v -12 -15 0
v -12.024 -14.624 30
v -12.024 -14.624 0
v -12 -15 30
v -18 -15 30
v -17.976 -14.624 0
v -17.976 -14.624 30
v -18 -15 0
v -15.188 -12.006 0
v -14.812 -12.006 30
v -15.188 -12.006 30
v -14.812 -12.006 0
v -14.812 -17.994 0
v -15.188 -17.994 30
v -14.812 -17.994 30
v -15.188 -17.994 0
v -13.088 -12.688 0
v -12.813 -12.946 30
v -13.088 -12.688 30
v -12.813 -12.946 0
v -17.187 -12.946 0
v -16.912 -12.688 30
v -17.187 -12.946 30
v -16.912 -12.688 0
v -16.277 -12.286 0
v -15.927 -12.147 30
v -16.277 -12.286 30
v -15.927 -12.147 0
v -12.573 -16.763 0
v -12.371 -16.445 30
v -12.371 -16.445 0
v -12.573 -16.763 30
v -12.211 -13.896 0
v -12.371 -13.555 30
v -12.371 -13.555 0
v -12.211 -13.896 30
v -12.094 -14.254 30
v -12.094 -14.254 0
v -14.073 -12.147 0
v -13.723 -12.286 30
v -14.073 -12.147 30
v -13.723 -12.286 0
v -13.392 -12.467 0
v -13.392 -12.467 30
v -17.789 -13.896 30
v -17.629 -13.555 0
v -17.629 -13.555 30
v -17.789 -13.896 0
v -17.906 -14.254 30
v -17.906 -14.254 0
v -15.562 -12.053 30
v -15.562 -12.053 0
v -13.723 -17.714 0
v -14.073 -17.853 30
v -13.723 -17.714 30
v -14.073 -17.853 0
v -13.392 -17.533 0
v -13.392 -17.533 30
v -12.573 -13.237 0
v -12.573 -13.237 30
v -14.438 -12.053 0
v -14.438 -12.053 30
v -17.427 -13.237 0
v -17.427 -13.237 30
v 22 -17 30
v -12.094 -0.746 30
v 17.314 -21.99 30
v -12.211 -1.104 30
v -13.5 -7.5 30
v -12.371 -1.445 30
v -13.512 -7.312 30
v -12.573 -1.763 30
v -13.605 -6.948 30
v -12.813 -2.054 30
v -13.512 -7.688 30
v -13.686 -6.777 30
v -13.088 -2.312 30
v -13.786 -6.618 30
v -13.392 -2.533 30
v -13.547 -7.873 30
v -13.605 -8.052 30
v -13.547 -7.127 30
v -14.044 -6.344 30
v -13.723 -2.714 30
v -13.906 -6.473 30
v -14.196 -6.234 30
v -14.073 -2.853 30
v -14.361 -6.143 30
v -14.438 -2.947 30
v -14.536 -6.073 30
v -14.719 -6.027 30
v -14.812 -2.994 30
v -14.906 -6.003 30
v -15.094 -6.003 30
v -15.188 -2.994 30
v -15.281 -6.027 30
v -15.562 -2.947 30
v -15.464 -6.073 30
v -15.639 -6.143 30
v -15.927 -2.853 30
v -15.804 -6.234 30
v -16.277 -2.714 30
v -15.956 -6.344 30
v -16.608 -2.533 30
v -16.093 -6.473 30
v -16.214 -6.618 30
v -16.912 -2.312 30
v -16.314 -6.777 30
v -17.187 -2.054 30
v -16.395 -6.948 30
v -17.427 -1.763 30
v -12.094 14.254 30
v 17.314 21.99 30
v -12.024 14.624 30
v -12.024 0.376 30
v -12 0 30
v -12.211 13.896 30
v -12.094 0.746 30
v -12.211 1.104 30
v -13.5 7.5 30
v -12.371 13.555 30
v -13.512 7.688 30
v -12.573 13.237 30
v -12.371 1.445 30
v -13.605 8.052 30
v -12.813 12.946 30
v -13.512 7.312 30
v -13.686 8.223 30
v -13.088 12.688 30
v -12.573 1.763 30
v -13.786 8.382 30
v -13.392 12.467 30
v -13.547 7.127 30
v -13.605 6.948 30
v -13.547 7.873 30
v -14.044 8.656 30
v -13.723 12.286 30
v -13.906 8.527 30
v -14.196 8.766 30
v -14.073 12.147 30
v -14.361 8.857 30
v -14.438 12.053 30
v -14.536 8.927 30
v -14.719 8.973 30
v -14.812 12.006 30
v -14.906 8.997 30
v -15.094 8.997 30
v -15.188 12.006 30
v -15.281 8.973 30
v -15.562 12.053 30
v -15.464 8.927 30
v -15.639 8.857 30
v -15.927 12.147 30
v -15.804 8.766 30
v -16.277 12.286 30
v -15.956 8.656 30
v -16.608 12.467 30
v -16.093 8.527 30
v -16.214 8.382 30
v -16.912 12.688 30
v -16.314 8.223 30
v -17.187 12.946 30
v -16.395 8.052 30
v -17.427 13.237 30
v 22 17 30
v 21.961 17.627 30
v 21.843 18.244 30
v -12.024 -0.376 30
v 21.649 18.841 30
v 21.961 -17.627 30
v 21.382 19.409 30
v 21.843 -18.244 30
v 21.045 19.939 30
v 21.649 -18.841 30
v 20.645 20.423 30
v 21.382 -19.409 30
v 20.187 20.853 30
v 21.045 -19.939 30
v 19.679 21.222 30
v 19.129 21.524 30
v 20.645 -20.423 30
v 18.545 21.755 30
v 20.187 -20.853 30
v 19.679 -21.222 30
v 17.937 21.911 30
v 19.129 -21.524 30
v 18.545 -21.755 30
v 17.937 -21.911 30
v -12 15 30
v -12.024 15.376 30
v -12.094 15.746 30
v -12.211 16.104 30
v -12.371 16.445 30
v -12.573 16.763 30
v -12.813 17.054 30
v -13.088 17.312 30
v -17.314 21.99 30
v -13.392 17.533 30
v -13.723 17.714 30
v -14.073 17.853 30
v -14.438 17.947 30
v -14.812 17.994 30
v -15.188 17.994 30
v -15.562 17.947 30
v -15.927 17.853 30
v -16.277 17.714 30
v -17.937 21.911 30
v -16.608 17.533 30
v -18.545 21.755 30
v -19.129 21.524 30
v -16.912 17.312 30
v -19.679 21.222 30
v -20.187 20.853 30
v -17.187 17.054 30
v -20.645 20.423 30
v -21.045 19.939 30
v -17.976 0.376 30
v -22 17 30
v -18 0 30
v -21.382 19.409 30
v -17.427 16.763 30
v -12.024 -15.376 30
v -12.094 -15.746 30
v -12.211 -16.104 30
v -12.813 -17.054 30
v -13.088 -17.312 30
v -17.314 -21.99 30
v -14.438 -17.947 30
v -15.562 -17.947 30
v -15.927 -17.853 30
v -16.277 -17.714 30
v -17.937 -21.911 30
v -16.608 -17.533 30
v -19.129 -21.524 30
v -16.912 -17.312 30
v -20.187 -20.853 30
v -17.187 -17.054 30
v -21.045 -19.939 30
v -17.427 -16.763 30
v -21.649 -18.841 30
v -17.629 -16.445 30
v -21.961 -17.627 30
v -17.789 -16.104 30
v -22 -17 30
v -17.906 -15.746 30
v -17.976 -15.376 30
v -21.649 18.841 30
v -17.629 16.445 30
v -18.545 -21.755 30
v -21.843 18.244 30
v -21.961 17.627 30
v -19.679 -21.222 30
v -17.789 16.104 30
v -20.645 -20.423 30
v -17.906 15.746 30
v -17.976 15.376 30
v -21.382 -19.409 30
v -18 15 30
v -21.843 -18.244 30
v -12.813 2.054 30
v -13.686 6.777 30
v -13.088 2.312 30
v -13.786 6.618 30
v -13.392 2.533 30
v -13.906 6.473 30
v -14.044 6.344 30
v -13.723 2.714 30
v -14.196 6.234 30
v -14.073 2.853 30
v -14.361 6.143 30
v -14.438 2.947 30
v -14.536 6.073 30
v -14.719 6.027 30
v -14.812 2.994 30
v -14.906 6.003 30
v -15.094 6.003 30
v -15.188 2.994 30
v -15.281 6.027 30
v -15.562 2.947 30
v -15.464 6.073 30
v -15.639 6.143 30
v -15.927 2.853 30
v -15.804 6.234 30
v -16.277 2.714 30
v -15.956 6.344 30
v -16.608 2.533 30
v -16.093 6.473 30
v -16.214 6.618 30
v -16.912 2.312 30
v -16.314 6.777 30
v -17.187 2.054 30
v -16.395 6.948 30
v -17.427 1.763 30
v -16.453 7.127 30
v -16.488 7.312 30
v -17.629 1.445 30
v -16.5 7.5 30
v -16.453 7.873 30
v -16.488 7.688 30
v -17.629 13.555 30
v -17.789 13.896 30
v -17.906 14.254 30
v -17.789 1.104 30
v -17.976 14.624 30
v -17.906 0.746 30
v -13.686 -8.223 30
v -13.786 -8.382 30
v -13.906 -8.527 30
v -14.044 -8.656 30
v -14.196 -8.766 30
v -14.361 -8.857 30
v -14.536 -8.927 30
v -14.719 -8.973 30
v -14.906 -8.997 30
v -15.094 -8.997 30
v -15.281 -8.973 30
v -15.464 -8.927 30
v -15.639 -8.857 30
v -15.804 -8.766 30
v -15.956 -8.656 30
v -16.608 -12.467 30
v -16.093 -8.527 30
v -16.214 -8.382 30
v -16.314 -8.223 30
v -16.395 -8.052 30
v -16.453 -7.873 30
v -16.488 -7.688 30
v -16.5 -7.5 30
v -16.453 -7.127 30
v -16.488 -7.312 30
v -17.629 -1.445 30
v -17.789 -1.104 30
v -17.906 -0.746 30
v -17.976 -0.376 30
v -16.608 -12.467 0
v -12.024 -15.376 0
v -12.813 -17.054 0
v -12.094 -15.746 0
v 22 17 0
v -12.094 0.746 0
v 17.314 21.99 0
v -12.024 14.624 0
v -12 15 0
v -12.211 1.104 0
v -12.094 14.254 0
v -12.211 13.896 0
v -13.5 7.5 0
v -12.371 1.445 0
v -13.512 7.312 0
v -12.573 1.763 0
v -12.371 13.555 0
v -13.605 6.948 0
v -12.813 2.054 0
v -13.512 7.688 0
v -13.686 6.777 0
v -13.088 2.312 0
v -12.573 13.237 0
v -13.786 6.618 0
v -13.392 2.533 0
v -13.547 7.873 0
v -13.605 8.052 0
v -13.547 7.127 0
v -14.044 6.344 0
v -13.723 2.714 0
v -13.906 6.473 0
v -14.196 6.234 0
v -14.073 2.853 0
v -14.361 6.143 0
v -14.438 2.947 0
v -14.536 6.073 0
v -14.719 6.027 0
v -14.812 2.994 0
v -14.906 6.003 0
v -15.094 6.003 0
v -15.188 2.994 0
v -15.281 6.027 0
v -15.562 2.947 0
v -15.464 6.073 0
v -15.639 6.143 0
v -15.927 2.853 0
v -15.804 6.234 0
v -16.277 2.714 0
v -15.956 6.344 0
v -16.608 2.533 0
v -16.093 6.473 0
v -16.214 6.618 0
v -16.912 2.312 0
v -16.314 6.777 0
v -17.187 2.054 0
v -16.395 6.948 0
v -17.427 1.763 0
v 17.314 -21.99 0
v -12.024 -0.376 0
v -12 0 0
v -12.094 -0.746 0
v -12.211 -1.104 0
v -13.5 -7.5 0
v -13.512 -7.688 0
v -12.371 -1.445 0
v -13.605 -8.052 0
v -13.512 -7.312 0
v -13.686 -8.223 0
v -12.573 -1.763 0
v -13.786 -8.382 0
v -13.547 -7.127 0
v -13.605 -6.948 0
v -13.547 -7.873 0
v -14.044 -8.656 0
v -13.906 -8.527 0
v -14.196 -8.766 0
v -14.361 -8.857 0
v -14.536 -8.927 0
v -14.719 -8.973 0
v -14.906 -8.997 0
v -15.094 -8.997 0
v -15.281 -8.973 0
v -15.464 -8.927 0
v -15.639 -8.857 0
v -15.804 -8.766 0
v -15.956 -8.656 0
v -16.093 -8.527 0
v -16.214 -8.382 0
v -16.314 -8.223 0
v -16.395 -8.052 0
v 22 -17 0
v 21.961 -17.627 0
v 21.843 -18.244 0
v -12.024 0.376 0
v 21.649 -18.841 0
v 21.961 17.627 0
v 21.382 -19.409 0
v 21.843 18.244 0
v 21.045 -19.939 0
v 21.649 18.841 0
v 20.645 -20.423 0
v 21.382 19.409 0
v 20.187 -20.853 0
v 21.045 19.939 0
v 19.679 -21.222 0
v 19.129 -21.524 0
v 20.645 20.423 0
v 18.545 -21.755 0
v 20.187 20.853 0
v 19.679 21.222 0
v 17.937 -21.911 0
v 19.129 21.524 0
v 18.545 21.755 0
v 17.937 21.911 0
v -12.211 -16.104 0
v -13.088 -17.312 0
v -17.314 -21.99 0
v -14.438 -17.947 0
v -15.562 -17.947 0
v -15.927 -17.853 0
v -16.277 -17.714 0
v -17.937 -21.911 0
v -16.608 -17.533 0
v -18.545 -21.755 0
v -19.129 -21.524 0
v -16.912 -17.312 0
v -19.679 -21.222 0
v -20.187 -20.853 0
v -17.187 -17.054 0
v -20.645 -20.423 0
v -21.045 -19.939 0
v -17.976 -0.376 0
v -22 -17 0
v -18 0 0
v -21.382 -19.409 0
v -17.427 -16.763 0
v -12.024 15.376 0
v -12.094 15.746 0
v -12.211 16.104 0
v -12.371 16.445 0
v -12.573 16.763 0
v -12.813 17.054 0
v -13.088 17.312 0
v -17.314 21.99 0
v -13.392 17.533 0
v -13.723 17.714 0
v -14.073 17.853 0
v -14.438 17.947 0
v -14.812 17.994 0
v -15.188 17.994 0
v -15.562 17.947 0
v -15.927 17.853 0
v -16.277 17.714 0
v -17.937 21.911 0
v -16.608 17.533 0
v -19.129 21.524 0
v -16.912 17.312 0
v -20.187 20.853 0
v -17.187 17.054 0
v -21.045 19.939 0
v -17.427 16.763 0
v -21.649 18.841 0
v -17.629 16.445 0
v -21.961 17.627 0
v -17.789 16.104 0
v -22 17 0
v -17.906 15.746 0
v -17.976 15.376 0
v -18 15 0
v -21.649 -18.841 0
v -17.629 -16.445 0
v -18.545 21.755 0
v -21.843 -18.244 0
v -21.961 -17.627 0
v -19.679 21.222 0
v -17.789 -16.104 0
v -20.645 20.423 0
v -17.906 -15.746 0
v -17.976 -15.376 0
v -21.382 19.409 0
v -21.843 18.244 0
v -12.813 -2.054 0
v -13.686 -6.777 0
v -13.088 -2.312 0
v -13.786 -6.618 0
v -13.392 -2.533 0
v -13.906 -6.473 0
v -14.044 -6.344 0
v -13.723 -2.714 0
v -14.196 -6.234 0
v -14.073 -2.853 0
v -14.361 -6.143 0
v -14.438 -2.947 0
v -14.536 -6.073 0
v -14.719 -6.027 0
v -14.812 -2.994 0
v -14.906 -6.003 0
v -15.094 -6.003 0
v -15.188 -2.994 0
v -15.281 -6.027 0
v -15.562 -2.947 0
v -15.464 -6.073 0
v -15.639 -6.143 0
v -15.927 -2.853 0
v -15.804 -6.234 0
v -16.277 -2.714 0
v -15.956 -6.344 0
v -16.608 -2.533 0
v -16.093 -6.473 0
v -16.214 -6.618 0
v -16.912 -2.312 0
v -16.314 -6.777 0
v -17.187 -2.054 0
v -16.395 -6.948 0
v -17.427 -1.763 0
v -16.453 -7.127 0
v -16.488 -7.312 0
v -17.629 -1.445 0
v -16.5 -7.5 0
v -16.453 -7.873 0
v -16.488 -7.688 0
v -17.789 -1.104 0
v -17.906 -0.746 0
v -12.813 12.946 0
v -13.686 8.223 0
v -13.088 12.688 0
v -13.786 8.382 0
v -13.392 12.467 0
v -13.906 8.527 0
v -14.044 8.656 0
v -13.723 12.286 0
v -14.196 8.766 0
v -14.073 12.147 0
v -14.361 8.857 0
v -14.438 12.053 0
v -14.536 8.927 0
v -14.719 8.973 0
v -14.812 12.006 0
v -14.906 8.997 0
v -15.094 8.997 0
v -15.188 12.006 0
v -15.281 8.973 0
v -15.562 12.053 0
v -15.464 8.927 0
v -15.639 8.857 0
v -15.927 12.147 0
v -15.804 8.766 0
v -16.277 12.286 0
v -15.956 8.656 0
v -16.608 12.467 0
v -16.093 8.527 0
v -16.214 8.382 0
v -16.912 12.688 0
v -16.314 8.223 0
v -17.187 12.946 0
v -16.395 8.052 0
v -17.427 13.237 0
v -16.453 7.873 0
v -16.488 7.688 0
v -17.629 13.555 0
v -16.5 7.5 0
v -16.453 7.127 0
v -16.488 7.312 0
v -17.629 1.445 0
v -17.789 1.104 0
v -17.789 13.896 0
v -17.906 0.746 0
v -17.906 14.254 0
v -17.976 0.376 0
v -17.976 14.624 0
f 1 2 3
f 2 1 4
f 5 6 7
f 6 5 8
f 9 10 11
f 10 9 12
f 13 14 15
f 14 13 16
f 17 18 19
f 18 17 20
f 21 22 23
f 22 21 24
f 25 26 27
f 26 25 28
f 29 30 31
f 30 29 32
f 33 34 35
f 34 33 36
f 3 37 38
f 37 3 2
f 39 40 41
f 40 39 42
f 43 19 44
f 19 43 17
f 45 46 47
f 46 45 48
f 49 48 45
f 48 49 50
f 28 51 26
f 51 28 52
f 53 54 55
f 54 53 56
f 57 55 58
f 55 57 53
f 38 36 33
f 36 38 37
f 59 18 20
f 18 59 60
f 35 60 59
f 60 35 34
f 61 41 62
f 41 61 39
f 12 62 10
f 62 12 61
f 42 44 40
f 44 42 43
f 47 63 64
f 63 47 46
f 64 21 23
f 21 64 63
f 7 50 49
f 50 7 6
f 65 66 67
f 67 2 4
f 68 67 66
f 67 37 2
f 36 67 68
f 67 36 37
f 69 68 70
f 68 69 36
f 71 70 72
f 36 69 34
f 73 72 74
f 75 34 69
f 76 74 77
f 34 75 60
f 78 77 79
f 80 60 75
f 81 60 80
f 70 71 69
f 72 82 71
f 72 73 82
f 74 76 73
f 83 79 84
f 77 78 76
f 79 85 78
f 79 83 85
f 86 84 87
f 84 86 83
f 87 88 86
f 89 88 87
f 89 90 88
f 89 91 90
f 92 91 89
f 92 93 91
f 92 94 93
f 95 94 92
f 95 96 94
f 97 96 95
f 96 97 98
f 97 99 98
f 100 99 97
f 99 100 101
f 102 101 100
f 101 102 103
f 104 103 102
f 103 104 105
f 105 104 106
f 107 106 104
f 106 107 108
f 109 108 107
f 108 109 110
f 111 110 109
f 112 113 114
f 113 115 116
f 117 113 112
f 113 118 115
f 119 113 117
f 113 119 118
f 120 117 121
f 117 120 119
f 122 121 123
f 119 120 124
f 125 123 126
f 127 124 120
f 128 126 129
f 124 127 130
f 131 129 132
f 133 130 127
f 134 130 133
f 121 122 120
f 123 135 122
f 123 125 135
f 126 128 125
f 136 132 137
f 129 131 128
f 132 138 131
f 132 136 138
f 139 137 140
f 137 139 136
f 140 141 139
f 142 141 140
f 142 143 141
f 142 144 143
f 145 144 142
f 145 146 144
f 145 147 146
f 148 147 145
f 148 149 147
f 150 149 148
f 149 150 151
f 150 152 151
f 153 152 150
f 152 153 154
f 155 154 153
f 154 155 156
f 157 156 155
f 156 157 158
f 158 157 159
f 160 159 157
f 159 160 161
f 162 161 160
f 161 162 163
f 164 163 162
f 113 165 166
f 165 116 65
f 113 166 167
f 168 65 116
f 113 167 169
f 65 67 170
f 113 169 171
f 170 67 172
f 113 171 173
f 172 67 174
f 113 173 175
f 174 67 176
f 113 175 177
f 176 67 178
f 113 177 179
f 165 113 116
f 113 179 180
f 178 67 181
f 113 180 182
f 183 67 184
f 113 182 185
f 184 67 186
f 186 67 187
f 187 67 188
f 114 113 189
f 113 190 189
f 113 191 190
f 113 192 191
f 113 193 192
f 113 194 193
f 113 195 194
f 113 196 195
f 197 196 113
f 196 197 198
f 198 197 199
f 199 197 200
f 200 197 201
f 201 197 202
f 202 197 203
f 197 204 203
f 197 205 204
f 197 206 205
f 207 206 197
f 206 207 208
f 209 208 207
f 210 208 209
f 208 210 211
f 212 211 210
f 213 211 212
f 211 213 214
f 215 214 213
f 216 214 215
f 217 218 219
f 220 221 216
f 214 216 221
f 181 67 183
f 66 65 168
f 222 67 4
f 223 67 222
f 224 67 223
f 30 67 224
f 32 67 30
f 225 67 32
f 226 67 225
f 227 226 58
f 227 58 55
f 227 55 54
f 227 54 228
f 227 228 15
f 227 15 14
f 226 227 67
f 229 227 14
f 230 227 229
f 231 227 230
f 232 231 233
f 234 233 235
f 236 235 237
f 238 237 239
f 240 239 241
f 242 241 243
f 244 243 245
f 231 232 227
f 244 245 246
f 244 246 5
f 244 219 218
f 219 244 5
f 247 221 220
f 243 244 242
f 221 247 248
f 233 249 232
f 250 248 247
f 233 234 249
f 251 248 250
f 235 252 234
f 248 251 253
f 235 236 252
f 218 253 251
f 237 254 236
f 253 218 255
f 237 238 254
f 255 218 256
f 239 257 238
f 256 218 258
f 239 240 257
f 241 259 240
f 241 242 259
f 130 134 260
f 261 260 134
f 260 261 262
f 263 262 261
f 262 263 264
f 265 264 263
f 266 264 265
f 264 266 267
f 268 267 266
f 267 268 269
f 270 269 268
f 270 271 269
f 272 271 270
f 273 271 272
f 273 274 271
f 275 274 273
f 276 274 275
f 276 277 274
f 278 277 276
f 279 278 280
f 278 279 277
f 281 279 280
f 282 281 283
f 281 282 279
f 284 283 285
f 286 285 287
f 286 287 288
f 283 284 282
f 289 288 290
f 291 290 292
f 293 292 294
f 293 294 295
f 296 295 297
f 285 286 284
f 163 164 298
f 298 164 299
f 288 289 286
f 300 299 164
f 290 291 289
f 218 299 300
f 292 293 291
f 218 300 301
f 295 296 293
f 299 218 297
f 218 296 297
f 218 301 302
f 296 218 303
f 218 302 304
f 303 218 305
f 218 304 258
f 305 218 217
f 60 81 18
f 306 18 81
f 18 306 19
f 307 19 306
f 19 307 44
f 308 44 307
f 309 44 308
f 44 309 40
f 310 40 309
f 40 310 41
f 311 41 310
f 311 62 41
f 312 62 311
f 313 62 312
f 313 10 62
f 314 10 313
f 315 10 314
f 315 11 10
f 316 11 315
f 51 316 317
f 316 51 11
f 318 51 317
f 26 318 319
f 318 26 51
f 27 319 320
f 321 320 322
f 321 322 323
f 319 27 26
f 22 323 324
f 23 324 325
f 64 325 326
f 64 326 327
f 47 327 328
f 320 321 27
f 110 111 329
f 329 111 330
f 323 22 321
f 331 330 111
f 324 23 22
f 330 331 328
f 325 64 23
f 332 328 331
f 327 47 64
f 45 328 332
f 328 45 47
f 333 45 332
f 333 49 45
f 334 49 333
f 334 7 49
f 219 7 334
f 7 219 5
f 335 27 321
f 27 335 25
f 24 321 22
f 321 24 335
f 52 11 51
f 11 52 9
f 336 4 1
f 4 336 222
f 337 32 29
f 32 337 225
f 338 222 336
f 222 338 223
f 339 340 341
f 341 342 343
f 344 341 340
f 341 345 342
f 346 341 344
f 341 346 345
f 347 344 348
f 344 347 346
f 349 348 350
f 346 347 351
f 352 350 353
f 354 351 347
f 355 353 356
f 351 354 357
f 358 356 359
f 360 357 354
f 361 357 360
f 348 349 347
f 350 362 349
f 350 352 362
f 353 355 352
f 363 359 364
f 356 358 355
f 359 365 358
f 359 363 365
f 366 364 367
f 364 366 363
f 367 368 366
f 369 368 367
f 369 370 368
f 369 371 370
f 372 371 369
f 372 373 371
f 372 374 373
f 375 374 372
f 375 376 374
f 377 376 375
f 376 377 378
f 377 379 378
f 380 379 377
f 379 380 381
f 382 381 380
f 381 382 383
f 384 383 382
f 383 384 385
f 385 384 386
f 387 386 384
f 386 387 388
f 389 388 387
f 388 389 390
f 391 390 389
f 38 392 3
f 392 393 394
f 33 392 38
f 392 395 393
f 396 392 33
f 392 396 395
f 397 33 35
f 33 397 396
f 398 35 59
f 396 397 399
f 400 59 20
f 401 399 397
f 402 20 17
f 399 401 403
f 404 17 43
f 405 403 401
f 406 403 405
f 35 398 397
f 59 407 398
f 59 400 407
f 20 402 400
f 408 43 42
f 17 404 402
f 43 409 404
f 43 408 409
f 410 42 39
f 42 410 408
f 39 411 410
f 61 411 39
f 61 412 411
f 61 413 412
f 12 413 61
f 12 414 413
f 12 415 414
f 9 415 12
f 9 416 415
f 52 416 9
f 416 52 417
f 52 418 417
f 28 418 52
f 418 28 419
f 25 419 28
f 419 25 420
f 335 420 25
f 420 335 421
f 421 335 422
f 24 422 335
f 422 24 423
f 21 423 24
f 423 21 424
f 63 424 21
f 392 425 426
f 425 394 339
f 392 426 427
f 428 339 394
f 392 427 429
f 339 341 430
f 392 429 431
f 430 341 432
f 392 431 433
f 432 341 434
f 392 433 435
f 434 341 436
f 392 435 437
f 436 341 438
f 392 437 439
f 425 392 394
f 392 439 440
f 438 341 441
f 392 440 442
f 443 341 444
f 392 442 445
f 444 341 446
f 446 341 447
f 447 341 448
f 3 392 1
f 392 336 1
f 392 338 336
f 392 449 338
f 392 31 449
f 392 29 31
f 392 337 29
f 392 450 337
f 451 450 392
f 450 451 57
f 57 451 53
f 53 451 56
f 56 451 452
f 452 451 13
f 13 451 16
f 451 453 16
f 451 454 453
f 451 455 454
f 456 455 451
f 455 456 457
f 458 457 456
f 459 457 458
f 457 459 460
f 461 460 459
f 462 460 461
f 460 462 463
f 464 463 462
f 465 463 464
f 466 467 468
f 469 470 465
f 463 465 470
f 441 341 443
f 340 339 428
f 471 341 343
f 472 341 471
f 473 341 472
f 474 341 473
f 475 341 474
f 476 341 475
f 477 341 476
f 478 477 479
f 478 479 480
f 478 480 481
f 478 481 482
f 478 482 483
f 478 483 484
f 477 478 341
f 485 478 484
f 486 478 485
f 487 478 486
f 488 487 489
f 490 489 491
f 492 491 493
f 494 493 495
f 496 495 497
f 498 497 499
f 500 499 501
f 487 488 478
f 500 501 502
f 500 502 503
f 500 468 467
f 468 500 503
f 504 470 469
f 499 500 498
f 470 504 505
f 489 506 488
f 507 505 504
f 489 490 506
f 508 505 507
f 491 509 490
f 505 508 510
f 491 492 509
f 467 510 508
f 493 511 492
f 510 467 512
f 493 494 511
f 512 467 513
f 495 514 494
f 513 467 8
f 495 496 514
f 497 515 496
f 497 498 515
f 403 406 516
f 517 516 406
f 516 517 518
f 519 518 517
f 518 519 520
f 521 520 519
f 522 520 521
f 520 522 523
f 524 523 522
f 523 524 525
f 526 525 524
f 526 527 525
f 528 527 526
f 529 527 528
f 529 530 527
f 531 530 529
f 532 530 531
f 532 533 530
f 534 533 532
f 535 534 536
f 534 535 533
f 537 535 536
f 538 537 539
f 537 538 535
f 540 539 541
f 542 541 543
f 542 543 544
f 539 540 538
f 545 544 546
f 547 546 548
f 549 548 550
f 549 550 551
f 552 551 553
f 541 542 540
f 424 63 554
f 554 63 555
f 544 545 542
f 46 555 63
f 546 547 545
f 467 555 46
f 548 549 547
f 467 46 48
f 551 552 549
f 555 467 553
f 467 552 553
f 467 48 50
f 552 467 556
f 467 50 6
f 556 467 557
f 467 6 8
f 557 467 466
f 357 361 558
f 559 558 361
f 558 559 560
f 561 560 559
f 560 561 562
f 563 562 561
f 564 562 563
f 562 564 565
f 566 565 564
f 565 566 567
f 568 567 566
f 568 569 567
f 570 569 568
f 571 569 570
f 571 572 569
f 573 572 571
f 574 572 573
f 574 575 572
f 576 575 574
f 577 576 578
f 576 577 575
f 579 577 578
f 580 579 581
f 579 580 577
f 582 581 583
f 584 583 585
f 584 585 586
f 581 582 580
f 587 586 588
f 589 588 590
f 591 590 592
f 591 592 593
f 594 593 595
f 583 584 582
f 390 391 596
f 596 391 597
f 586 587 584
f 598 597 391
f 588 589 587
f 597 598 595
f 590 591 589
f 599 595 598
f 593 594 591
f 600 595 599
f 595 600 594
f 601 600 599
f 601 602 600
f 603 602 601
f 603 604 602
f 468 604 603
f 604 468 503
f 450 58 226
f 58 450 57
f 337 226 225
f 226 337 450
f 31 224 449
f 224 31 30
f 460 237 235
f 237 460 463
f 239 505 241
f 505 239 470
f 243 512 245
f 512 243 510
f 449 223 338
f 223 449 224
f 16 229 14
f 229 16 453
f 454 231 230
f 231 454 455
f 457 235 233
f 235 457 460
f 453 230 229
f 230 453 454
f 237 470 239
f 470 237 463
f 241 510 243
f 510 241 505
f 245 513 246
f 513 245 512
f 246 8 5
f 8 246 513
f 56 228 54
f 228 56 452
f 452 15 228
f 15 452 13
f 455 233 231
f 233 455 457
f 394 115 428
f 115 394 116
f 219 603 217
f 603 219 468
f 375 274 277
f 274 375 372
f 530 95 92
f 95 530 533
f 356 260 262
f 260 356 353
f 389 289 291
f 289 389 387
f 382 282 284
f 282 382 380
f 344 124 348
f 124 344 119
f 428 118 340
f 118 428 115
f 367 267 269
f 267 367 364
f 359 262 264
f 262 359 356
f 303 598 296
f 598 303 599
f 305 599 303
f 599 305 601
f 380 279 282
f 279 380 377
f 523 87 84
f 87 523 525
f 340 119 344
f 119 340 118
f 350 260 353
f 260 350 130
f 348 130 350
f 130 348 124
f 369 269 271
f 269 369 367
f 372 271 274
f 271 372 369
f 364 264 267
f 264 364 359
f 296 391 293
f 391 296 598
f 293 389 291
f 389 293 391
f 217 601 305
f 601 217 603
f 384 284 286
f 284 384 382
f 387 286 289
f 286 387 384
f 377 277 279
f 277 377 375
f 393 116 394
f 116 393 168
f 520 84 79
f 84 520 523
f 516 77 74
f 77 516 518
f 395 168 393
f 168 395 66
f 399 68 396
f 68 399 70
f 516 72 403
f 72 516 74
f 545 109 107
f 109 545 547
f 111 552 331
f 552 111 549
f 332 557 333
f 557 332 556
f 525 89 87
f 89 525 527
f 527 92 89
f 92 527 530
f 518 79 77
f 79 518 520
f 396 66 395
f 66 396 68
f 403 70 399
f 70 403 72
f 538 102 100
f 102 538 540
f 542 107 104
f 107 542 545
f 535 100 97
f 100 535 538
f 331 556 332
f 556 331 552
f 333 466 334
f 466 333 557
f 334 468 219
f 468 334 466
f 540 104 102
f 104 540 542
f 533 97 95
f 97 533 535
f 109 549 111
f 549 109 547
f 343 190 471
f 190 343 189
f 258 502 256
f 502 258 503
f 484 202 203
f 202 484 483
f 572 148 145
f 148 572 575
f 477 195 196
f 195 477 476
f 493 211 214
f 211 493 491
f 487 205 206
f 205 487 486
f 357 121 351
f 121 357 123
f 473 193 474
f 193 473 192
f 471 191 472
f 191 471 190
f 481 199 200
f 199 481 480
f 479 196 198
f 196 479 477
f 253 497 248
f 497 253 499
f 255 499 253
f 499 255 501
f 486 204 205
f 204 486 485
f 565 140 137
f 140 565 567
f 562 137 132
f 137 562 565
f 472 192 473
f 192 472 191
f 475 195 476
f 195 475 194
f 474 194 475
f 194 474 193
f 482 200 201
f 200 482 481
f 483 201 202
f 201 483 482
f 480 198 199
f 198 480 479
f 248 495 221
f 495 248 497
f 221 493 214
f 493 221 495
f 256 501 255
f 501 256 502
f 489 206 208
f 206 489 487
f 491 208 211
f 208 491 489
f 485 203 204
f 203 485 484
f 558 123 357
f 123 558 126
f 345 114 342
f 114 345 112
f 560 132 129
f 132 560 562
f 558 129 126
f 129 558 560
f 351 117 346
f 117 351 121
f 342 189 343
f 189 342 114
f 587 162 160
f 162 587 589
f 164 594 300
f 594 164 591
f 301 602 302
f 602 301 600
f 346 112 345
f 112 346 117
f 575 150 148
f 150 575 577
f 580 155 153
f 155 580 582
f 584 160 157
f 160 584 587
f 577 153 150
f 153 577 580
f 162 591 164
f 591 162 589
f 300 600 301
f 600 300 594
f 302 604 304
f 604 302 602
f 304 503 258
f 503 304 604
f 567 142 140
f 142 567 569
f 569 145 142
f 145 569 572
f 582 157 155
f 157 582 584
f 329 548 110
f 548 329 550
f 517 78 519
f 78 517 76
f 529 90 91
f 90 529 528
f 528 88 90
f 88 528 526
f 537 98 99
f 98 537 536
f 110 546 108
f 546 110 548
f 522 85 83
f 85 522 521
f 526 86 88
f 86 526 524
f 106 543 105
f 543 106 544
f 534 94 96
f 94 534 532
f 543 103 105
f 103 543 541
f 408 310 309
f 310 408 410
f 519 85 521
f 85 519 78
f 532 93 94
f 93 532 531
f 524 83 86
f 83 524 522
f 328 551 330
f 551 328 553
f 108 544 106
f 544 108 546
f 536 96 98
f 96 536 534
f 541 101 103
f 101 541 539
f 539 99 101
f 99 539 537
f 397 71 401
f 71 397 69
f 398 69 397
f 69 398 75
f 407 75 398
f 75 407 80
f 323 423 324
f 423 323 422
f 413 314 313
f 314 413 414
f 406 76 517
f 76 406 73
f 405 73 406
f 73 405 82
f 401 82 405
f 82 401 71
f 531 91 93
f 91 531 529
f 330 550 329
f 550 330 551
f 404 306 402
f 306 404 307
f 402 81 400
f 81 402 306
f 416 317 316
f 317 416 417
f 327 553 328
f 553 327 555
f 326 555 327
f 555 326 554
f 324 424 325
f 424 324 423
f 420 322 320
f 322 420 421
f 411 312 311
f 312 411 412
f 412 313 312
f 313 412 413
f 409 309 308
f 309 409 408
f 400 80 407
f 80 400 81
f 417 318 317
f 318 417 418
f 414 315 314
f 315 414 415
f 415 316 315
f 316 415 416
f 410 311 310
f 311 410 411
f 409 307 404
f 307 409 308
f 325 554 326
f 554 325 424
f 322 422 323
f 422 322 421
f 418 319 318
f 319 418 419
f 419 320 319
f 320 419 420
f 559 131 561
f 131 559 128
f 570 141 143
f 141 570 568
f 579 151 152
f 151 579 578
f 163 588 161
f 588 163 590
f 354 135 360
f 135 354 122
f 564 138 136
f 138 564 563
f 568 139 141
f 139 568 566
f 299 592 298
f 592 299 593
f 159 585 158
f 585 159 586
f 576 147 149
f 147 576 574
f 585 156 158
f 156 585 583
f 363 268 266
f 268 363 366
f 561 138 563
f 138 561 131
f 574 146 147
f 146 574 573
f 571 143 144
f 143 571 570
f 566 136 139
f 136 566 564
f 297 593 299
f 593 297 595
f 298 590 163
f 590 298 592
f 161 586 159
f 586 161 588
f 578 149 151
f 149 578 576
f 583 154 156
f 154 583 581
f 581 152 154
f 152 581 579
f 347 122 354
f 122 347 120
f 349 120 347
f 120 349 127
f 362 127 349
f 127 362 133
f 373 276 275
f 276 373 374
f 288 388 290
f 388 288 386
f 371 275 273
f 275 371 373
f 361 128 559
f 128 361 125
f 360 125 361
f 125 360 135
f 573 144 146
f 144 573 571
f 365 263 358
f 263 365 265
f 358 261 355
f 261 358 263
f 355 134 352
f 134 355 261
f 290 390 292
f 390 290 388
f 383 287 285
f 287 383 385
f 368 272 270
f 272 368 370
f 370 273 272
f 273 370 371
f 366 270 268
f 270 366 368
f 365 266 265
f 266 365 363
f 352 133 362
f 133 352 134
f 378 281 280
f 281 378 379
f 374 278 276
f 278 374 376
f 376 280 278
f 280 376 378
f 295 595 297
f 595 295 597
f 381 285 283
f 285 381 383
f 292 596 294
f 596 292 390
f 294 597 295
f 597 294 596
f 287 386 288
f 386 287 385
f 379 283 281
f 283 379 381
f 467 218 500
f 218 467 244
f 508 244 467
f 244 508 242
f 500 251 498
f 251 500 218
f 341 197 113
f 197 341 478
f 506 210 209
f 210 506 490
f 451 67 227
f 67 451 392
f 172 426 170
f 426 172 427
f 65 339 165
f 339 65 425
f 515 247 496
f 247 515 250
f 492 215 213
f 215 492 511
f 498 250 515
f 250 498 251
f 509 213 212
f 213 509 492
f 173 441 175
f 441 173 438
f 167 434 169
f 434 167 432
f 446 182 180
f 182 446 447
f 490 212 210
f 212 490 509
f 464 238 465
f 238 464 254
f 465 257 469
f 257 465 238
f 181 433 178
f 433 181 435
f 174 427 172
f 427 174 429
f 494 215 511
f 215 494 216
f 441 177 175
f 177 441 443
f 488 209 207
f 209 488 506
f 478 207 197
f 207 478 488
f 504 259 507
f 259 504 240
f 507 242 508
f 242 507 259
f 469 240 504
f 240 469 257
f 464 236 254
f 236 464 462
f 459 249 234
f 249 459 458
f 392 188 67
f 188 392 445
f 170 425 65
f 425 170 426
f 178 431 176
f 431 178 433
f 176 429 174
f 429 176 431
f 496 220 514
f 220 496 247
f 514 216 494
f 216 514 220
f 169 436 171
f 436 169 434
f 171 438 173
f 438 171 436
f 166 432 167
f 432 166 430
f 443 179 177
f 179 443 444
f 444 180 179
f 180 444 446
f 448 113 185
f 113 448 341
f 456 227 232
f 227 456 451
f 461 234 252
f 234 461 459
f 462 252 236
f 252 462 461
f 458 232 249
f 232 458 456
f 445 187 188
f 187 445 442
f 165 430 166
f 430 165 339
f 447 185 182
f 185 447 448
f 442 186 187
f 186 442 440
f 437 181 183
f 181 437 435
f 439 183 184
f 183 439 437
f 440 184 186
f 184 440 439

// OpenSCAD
$fn = 50;


difference() {
	union() {
		hull() {
			translate(v = [-17.0000000000, 17.0000000000, 0]) {
				cylinder(h = 30, r = 5);
			}
			translate(v = [17.0000000000, 17.0000000000, 0]) {
				cylinder(h = 30, r = 5);
			}
			translate(v = [-17.0000000000, -17.0000000000, 0]) {
				cylinder(h = 30, r = 5);
			}
			translate(v = [17.0000000000, -17.0000000000, 0]) {
				cylinder(h = 30, r = 5);
			}
		}
	}
	union() {
		translate(v = [-15.0000000000, -15.0000000000, 0]) {
			cylinder(h = 30, r = 3.0000000000);
		}
		translate(v = [-15.0000000000, 0.0000000000, 0]) {
			cylinder(h = 30, r = 3.0000000000);
		}
		translate(v = [-15.0000000000, 15.0000000000, 0]) {
			cylinder(h = 30, r = 3.0000000000);
		}
		translate(v = [-15.0000000000, -15.0000000000, 0]) {
			cylinder(h = 30, r = 1.5000000000);
		}
		translate(v = [-15.0000000000, -7.5000000000, 0]) {
			cylinder(h = 30, r = 1.5000000000);
		}
		translate(v = [-15.0000000000, 0.0000000000, 0]) {
			cylinder(h = 30, r = 1.5000000000);
		}
		translate(v = [-15.0000000000, 7.5000000000, 0]) {
			cylinder(h = 30, r = 1.5000000000);
		}
		translate(v = [-15.0000000000, 15.0000000000, 0]) {
			cylinder(h = 30, r = 1.5000000000);
		}
		translate(v = [-15.0000000000, -15.0000000000, 0]) {
			cylinder(h = 30, r = 1.5000000000);
		}
		translate(v = [-15.0000000000, -7.5000000000, 0]) {
			cylinder(h = 30, r = 1.5000000000);
		}
		translate(v = [-15.0000000000, 0.0000000000, 0]) {
			cylinder(h = 30, r = 1.5000000000);
		}
		translate(v = [-15.0000000000, 7.5000000000, 0]) {
			cylinder(h = 30, r = 1.5000000000);
		}
		translate(v = [-15.0000000000, 15.0000000000, 0]) {
			cylinder(h = 30, r = 1.5000000000);
		}
		translate(v = [-15.0000000000, -15.0000000000, 0]) {
			cylinder(h = 30, r = 1.5000000000);
		}
		translate(v = [-15.0000000000, -7.5000000000, 0]) {
			cylinder(h = 30, r = 1.5000000000);
		}
		translate(v = [-15.0000000000, 0.0000000000, 0]) {
			cylinder(h = 30, r = 1.5000000000);
		}
		translate(v = [-15.0000000000, 7.5000000000, 0]) {
			cylinder(h = 30, r = 1.5000000000);
		}
		translate(v = [-15.0000000000, 15.0000000000, 0]) {
			cylinder(h = 30, r = 1.5000000000);
		}
	}
}
